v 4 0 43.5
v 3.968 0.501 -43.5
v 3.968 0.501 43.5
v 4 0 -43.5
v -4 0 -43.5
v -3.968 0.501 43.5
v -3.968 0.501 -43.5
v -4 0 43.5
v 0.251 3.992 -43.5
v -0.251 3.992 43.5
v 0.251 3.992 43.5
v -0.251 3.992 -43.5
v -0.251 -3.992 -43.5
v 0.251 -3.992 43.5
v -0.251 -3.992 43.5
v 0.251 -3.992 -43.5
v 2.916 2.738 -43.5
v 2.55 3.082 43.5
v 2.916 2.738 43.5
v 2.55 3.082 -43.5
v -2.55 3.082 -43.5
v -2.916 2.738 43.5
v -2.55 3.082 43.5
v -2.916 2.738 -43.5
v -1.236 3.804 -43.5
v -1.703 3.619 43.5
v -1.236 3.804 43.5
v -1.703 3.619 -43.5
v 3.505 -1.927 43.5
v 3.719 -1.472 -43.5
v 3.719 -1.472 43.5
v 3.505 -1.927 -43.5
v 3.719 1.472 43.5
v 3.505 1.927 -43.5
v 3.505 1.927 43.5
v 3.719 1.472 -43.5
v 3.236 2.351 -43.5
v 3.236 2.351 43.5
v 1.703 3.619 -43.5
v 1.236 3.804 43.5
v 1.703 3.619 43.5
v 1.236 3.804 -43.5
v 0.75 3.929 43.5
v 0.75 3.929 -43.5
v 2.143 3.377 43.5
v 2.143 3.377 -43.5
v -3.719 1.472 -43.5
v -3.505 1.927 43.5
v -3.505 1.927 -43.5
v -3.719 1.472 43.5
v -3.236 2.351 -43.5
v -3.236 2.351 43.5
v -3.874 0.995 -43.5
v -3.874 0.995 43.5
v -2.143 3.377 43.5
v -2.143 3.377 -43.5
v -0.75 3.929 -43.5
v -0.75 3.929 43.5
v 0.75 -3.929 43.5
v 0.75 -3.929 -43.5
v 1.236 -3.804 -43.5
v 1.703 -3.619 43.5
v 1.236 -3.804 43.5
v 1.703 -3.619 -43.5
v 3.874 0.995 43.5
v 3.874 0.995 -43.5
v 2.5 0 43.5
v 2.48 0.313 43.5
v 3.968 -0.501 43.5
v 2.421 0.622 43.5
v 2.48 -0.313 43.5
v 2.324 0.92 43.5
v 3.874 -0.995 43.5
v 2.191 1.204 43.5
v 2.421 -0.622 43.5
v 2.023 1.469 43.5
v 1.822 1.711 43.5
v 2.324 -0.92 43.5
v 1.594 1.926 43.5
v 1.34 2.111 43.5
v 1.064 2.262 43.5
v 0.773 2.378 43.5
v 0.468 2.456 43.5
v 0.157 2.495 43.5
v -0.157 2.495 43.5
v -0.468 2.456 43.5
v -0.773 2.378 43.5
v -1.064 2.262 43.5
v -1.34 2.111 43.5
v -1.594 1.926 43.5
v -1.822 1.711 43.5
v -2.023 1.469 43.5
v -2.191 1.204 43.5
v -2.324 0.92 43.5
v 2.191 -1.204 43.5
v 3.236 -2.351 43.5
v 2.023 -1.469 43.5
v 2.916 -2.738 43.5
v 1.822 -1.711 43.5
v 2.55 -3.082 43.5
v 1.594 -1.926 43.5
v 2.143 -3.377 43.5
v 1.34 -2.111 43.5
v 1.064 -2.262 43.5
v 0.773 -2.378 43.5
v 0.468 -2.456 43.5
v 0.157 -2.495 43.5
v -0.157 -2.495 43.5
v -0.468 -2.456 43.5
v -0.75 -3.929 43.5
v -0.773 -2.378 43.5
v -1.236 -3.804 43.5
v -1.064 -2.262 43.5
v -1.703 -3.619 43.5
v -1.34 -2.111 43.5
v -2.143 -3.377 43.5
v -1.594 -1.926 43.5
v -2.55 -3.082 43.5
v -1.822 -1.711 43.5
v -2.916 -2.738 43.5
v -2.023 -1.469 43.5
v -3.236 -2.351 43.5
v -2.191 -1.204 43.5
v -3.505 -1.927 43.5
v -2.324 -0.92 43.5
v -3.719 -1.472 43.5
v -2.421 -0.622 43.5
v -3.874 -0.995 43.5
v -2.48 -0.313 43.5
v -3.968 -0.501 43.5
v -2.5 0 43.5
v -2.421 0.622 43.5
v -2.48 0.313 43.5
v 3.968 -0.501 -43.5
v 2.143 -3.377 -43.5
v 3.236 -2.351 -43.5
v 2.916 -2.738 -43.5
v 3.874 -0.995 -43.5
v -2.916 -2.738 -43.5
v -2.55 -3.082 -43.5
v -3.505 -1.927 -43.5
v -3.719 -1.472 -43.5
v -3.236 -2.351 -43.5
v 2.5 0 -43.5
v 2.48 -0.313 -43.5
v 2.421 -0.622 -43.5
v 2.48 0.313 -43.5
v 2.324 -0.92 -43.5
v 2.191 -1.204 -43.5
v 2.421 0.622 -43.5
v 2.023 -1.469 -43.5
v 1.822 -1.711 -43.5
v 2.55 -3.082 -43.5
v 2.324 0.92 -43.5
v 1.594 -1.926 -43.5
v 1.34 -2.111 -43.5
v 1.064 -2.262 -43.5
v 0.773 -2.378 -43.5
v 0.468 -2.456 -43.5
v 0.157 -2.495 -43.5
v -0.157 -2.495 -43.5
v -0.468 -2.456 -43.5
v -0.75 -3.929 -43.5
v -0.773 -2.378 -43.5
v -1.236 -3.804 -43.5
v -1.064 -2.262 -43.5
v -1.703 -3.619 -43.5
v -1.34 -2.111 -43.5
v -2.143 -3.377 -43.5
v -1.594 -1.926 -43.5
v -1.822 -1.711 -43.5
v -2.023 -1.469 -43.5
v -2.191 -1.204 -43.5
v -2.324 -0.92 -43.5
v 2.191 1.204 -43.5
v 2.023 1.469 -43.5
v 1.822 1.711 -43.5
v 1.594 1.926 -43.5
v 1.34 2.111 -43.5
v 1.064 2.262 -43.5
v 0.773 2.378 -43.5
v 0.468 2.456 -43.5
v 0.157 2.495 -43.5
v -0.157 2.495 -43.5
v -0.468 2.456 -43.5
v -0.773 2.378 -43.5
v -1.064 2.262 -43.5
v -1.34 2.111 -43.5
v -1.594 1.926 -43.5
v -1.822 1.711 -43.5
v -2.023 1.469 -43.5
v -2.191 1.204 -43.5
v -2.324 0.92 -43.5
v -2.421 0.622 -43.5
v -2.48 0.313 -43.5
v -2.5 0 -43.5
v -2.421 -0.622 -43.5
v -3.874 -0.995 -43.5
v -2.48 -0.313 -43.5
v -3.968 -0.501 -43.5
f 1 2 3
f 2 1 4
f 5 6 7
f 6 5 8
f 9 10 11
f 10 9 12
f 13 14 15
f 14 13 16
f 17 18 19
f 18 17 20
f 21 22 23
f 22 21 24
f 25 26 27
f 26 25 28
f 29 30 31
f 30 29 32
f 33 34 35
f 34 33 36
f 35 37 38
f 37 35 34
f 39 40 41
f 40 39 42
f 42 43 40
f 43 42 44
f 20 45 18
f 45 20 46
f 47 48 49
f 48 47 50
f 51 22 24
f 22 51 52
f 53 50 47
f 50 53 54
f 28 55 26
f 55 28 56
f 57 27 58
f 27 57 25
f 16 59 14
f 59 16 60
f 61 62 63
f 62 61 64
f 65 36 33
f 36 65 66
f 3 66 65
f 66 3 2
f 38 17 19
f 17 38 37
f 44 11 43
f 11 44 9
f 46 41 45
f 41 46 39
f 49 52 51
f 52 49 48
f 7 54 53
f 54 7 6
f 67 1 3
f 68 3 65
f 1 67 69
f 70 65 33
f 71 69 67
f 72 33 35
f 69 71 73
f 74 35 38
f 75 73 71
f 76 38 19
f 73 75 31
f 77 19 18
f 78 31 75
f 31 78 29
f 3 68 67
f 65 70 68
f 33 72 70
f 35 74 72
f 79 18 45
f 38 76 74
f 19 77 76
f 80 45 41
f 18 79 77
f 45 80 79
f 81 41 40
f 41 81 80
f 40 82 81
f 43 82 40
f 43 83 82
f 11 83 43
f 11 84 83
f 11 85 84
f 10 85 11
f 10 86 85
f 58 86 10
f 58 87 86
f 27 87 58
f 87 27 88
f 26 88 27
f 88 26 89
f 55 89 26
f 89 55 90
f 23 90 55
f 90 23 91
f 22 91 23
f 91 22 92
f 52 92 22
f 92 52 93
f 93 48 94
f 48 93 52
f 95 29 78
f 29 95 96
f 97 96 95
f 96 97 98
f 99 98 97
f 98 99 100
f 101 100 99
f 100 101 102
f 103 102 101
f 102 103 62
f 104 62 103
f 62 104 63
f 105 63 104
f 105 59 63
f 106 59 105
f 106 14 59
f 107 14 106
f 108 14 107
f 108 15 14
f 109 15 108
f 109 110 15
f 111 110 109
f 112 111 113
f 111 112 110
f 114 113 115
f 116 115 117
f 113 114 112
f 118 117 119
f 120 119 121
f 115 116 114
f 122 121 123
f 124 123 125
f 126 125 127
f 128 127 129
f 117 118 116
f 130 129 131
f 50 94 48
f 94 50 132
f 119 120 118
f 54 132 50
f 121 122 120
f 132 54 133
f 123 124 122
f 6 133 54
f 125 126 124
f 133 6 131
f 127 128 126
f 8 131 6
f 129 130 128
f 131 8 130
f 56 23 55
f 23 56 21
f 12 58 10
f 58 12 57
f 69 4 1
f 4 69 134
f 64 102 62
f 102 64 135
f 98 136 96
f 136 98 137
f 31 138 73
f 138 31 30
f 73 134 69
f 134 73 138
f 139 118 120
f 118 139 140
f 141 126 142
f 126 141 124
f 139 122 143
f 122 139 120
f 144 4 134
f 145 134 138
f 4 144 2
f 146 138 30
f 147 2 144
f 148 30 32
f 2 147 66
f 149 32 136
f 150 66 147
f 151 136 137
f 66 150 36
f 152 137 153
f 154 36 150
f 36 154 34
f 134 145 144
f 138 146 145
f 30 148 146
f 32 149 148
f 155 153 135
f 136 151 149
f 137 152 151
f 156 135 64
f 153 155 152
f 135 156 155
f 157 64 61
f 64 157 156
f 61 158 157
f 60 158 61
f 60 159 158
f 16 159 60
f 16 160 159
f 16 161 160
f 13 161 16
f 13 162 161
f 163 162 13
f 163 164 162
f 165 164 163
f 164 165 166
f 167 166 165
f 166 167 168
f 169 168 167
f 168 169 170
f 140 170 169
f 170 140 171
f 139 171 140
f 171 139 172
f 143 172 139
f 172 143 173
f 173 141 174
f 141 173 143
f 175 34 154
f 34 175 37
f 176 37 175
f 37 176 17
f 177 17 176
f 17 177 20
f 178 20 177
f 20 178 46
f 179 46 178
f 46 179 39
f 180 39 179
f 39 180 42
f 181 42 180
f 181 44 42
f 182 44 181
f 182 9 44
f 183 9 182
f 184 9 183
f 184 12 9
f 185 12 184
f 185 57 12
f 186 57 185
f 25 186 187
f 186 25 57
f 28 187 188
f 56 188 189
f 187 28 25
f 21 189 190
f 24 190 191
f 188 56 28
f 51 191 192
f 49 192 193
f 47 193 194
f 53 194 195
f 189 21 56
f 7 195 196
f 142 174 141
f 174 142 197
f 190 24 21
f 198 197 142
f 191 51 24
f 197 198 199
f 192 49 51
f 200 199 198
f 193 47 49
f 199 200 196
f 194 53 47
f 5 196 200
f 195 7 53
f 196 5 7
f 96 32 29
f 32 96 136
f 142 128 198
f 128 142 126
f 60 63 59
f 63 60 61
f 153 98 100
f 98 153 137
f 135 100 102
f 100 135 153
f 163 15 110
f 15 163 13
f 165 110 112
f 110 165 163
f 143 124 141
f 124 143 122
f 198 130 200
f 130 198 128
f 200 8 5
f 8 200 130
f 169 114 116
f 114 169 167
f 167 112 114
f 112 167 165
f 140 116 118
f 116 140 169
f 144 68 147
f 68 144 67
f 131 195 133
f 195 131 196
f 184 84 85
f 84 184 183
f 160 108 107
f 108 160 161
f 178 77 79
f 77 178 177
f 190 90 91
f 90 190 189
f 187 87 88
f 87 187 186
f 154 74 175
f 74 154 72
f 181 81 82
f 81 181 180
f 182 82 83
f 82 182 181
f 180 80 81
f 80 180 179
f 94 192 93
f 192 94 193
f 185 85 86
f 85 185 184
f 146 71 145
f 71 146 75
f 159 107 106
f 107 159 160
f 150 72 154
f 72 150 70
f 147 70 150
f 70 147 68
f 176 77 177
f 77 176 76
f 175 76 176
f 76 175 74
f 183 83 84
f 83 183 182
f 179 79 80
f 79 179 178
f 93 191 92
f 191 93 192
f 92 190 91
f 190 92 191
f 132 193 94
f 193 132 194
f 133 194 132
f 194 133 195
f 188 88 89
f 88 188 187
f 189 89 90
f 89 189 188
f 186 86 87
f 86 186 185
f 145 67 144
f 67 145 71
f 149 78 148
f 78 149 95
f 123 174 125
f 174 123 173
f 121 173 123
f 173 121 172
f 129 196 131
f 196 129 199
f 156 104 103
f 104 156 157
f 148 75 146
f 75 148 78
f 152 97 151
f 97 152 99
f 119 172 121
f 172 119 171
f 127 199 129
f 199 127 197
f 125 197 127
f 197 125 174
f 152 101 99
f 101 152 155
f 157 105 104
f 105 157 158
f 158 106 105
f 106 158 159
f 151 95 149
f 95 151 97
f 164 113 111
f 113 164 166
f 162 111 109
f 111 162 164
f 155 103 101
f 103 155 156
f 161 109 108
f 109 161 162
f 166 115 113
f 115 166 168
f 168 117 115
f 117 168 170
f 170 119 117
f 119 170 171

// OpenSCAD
$fn = 50;


difference() {
	union() {
		translate(v = [0, 0, -43.5000000000]) {
			cylinder(h = 87, r = 4.0000000000);
		}
	}
	union() {
		translate(v = [0, 0, -100.0000000000]) {
			cylinder(h = 200, r = 2.5000000000);
		}
	}
}
